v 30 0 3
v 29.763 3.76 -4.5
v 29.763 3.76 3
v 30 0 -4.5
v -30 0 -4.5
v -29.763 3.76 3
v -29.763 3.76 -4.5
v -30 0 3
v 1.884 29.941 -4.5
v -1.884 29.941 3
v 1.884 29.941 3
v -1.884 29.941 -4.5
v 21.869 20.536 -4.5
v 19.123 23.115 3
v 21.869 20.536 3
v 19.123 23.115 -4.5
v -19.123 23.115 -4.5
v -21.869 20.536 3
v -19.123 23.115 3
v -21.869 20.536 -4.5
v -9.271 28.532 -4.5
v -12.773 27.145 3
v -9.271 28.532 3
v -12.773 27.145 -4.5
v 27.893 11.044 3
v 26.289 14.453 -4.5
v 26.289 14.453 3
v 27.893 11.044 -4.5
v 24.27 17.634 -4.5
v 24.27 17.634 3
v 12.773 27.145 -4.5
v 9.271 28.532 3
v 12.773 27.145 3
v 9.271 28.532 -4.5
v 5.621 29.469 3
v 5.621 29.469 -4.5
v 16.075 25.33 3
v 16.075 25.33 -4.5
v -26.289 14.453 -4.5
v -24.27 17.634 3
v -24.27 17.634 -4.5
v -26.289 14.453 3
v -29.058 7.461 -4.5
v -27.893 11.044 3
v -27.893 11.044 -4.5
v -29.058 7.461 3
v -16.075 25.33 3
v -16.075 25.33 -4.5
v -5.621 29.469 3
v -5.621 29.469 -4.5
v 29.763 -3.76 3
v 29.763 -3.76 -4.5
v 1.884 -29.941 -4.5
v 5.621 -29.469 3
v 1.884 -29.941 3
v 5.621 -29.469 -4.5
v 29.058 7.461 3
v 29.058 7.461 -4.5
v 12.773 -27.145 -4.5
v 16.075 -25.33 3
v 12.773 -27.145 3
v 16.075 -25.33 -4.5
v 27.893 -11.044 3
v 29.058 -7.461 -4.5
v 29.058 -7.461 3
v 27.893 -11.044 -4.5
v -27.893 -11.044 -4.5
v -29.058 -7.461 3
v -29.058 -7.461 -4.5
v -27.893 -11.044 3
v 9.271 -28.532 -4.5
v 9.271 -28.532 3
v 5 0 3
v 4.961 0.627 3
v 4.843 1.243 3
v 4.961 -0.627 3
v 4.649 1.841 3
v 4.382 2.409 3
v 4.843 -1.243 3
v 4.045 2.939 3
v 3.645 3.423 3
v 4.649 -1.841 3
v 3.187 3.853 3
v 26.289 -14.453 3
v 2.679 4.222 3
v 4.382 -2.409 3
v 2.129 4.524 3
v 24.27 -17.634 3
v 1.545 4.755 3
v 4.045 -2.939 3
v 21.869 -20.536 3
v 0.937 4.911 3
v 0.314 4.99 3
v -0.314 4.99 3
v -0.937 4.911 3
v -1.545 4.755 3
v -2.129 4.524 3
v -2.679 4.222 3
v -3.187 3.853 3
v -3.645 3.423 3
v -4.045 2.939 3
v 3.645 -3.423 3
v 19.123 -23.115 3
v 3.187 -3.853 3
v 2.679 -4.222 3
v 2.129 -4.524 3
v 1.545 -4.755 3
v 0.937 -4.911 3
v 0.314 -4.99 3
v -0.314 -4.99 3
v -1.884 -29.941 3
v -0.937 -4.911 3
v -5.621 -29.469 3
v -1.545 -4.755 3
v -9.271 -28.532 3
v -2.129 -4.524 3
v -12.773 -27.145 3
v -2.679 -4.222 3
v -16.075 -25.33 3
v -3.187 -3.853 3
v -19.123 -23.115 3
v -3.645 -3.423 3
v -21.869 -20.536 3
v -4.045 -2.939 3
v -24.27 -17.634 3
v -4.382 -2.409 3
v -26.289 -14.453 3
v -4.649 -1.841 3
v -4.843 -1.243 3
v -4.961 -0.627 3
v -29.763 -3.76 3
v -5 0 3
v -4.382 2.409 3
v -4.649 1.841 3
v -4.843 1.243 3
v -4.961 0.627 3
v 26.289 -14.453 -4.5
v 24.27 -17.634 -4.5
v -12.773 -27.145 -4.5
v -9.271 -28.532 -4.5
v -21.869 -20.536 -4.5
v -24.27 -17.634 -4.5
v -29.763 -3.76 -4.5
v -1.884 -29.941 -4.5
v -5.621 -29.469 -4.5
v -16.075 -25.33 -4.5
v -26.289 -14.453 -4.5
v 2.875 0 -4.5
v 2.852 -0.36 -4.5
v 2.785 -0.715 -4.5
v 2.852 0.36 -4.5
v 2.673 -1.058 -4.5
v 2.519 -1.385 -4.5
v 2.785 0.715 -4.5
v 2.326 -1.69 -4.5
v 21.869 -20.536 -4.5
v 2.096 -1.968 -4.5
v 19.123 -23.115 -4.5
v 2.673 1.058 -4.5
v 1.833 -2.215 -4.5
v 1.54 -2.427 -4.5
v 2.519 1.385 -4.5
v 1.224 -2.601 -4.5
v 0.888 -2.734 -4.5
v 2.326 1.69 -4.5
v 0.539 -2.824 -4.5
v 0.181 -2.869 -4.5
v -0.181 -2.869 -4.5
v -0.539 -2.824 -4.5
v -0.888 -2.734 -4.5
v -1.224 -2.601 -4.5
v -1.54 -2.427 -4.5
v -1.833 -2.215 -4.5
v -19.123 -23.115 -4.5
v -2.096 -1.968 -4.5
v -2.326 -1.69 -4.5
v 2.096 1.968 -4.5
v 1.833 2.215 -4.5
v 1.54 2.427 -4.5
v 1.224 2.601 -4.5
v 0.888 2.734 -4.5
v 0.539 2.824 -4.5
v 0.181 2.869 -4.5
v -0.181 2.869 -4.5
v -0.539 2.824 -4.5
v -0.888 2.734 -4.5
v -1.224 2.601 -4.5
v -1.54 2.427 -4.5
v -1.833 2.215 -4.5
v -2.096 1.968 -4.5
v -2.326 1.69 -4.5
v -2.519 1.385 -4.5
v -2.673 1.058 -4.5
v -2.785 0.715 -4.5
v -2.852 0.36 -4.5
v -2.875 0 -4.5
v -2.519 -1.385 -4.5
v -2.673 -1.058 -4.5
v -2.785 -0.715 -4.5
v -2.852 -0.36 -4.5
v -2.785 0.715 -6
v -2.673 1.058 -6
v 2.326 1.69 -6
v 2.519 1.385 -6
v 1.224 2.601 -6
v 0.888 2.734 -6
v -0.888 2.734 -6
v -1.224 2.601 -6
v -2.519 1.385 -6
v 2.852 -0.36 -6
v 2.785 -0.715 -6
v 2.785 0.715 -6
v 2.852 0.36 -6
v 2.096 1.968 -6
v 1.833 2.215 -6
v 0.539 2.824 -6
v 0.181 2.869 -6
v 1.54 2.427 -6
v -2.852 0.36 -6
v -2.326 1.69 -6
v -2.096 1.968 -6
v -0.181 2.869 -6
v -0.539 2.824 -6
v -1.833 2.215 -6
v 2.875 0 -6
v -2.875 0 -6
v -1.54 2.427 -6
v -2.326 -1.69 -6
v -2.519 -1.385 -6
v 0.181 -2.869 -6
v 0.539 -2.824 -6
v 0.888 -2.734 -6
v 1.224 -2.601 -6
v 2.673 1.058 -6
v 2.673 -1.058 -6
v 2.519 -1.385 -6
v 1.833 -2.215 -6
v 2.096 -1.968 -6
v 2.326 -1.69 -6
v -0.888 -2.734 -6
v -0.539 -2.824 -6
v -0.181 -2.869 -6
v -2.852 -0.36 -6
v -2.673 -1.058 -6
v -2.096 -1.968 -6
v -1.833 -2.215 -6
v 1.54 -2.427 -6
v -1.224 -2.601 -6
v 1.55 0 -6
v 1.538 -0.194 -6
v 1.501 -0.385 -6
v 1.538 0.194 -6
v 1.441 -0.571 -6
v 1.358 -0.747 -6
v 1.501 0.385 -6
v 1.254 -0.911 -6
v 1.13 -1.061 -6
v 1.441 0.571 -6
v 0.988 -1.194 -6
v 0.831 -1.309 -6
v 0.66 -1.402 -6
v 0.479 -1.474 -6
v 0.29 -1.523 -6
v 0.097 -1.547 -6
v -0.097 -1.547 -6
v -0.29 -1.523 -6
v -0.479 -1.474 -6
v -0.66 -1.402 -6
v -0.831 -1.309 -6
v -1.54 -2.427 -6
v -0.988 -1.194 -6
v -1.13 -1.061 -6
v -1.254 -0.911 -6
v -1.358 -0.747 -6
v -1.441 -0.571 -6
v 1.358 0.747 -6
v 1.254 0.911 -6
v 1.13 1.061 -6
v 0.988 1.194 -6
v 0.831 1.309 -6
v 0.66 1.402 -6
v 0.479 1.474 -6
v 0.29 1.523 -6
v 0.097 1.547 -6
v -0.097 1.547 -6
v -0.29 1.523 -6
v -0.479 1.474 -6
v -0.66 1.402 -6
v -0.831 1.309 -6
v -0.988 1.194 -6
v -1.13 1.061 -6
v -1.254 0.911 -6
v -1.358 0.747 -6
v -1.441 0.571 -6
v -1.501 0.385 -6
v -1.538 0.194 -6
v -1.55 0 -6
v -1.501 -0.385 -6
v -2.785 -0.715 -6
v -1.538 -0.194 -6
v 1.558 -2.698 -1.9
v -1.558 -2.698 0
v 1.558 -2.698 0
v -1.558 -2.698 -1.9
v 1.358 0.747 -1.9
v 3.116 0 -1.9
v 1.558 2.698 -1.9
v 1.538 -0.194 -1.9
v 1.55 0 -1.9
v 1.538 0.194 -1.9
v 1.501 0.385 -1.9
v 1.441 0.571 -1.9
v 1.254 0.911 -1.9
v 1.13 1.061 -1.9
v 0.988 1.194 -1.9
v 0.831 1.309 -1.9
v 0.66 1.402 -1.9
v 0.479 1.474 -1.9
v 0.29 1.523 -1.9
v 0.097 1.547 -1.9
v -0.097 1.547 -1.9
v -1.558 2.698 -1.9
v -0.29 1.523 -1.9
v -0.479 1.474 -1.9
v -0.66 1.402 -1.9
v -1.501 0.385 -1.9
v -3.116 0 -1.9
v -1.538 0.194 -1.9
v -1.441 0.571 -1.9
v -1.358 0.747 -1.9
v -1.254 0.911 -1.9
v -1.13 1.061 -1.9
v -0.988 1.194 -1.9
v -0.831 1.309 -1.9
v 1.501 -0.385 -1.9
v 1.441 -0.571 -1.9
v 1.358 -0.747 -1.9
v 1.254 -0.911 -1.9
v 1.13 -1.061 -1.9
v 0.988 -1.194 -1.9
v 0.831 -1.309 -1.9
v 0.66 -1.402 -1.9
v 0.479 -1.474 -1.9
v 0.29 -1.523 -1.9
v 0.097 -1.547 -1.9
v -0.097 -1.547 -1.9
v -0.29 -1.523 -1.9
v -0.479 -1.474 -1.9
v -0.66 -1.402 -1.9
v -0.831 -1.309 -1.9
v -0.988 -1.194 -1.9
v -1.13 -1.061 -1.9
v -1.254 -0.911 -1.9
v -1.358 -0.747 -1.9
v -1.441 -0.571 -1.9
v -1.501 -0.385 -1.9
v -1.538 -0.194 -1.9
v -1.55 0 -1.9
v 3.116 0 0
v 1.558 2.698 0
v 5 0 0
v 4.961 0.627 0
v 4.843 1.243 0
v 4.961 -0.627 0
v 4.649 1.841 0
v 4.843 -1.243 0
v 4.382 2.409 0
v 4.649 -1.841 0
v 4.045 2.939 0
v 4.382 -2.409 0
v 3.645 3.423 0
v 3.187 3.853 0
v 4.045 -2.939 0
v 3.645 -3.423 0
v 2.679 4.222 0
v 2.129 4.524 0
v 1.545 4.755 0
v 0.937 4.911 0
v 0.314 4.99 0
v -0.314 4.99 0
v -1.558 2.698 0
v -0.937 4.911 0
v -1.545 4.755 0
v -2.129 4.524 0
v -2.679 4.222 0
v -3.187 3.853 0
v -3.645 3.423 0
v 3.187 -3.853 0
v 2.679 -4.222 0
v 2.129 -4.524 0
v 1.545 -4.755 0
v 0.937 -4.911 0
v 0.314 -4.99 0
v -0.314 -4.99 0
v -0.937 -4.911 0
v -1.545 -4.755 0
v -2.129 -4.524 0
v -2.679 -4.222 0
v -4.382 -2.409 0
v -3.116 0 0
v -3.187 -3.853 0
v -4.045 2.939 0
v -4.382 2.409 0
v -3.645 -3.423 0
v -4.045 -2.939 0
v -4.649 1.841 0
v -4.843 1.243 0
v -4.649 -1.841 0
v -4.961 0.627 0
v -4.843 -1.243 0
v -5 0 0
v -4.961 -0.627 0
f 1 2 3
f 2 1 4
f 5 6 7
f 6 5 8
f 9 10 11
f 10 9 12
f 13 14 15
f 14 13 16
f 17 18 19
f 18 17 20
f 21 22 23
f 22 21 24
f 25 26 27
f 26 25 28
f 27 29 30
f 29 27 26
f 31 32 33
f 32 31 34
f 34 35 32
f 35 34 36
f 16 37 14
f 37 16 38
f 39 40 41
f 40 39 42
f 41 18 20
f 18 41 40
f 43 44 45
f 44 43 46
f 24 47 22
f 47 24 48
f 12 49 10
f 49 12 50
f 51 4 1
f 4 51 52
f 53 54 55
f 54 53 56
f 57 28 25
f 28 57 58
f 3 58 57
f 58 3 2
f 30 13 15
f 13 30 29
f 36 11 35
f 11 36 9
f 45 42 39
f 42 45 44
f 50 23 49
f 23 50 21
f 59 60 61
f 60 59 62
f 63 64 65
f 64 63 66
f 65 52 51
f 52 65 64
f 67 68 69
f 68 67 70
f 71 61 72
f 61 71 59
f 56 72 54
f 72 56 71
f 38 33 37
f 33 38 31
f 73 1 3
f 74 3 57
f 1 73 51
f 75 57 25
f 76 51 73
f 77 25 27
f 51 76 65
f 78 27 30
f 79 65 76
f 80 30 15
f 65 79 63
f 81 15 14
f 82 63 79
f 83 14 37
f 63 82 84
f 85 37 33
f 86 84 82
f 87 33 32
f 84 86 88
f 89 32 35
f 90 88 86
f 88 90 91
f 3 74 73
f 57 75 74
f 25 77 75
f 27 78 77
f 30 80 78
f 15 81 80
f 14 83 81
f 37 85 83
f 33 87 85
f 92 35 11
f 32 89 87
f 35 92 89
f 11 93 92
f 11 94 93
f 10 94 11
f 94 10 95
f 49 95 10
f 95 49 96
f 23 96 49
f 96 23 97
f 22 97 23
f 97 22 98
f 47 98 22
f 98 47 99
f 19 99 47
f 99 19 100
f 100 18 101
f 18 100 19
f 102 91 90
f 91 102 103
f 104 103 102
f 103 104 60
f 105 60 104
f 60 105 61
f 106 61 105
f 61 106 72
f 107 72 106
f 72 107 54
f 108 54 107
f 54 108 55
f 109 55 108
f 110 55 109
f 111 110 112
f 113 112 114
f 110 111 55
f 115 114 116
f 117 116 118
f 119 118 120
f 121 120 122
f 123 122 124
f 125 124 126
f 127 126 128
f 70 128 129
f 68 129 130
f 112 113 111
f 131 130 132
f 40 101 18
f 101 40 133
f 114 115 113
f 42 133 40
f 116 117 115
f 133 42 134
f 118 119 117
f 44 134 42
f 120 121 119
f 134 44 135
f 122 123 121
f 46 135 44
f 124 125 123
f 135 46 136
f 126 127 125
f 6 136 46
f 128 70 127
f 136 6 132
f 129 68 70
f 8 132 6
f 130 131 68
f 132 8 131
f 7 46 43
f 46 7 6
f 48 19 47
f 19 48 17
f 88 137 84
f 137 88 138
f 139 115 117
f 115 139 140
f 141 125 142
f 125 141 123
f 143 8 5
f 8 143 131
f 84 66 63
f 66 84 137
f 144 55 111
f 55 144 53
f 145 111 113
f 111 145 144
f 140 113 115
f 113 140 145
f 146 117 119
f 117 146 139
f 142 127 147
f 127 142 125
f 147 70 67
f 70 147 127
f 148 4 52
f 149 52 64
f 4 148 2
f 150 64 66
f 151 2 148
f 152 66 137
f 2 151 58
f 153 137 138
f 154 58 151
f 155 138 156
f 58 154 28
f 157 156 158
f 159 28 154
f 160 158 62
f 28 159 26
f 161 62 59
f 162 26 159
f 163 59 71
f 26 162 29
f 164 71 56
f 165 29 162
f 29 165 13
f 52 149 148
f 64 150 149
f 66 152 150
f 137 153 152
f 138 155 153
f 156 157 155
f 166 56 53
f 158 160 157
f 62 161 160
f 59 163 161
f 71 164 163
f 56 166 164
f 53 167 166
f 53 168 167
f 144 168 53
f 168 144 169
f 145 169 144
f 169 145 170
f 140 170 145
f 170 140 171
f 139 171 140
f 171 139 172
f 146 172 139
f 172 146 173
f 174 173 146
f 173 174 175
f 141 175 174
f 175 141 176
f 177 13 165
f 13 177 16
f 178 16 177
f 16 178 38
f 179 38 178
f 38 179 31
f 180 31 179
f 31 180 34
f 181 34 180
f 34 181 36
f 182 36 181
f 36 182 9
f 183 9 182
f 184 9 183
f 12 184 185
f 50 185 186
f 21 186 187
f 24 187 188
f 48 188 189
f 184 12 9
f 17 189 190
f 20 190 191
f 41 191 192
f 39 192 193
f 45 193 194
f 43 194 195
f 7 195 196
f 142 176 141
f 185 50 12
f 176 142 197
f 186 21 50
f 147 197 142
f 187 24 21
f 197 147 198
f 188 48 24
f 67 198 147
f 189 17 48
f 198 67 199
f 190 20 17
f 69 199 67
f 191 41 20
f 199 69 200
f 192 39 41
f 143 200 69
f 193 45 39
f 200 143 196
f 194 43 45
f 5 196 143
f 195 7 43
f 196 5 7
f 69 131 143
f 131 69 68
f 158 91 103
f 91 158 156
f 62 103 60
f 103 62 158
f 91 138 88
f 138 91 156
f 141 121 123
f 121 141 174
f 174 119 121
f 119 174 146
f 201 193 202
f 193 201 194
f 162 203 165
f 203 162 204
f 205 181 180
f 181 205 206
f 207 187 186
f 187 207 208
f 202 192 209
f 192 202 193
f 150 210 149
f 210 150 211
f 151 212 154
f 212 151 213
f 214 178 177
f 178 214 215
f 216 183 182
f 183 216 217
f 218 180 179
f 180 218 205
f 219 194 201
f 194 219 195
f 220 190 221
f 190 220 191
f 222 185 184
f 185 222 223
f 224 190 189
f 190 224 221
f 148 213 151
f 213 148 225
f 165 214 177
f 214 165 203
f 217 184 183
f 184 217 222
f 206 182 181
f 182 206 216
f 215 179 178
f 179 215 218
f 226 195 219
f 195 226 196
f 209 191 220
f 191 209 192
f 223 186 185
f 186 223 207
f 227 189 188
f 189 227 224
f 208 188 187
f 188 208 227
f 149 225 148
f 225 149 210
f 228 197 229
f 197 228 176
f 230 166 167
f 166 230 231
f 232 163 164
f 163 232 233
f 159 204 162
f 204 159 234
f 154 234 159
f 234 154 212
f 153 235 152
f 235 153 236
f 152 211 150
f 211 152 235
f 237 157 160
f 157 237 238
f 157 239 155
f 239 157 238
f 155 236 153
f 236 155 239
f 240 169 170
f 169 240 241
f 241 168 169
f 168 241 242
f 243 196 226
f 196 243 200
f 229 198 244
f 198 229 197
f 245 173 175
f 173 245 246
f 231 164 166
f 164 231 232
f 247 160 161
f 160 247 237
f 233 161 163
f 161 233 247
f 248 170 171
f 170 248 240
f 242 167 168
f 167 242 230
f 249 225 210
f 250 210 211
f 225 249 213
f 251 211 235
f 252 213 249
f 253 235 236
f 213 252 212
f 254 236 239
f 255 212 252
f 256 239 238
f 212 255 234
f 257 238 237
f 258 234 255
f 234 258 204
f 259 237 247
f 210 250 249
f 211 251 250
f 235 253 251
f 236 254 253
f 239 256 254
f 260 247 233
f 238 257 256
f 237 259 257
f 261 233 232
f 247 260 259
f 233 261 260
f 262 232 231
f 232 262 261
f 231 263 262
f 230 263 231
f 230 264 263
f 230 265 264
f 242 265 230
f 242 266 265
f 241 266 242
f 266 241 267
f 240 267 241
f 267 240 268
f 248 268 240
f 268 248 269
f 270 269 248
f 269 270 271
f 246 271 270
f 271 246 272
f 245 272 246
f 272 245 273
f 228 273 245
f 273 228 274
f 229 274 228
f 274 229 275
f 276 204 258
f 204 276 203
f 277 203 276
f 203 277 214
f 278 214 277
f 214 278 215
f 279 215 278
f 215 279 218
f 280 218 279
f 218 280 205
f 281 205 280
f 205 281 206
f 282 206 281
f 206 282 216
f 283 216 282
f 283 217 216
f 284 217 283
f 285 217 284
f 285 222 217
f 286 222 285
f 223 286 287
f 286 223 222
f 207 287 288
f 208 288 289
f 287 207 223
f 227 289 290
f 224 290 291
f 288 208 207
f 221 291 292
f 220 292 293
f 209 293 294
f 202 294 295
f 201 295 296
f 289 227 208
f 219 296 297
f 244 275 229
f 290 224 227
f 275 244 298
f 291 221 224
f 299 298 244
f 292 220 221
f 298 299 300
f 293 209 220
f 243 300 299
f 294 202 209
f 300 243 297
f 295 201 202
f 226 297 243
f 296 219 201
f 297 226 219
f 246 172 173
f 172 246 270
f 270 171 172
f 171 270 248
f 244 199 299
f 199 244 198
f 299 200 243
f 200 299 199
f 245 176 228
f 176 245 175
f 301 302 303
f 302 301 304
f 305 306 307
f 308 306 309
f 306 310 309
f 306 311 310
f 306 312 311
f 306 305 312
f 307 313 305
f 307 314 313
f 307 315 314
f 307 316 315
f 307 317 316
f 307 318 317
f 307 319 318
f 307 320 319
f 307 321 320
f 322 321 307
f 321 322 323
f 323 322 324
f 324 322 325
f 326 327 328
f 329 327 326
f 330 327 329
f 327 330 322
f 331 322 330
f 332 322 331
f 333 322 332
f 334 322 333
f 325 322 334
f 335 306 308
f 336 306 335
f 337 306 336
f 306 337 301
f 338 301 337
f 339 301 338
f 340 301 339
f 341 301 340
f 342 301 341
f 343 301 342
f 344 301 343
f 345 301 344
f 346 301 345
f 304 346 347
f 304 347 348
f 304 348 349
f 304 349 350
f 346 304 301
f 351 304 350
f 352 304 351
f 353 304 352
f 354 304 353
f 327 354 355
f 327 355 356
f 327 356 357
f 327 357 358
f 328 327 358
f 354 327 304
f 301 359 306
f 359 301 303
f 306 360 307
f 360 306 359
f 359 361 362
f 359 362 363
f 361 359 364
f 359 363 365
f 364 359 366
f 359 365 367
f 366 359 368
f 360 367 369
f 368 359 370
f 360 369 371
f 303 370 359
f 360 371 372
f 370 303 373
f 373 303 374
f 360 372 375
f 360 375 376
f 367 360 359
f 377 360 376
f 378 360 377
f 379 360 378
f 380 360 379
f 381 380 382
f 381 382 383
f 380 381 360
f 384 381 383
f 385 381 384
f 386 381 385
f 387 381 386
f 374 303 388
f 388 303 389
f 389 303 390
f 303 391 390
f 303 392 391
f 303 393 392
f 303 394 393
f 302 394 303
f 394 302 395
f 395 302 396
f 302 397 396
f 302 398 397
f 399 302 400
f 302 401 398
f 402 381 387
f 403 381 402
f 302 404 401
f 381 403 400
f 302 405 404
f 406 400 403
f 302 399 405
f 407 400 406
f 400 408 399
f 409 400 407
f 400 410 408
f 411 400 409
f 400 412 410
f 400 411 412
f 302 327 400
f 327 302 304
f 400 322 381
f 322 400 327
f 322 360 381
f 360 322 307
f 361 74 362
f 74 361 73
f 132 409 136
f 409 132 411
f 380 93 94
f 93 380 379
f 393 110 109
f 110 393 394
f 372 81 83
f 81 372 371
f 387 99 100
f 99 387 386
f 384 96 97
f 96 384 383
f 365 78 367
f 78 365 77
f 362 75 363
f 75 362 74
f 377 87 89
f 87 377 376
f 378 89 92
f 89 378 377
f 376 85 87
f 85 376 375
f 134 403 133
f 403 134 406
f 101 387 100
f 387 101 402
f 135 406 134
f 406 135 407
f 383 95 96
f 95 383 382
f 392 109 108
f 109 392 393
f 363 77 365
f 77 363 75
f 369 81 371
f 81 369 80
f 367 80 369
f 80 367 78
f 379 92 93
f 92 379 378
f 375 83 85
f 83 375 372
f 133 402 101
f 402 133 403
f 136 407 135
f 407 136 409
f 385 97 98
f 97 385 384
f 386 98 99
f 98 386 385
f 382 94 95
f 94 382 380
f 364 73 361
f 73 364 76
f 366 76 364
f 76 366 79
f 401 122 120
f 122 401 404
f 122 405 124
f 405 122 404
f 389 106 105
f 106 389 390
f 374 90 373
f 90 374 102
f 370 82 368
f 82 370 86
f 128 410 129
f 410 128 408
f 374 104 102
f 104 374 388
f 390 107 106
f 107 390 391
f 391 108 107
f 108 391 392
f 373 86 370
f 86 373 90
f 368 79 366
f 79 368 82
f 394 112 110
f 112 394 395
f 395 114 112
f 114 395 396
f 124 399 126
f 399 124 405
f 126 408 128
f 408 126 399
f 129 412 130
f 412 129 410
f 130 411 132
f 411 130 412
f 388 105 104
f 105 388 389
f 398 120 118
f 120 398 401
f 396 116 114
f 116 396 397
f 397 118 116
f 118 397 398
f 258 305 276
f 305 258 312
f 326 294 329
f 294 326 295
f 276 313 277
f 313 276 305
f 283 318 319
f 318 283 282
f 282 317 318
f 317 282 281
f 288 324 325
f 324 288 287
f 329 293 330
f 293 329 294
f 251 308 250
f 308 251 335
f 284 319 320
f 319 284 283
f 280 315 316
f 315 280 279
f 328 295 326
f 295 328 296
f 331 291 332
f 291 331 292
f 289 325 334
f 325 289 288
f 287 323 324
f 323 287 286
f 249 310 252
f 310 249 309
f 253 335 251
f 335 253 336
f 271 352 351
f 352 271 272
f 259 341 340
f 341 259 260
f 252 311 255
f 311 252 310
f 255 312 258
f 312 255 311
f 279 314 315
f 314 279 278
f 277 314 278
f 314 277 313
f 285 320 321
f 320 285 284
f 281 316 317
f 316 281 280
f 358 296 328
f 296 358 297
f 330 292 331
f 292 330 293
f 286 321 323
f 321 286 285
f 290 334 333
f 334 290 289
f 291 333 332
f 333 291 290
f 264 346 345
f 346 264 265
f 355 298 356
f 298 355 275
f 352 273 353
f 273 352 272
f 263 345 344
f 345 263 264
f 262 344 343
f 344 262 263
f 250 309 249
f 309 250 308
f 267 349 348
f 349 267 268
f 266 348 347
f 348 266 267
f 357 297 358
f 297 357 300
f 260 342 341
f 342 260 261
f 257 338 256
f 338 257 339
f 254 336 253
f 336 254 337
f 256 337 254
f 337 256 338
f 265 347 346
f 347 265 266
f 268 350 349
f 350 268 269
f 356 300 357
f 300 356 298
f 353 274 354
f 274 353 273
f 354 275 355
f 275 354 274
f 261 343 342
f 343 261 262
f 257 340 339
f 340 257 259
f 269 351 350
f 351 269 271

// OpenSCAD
$fn = 50;


difference() {
	union() {
		translate(v = [0, 0, -4.5000000000]) {
			cylinder(h = 7.5000000000, r = 30.0000000000);
		}
		#translate(v = [0, 0, -6.0000000000]) {
			cylinder(h = 6, r = 2.8750000000);
		}
	}
	union() {
		translate(v = [0, 0, 0]) {
			rotate(a = [0, 0, 0]) {
				difference() {
					union() {
						translate(v = [0, 0, -1.9000000000]) {
							linear_extrude(height = 1.9000000000) {
								polygon(points = [[3.1158000000, 0.0000000000], [1.5579000000, 2.6983619531], [-1.5579000000, 2.6983619531], [-3.1158000000, 0.0000000000], [-1.5579000000, -2.6983619531], [1.5579000000, -2.6983619531]]);
							}
						}
					}
					union();
				}
			}
		}
		#cylinder(h = 3, r = 5.0000000000);
		#translate(v = [0, 0, -100.0000000000]) {
			cylinder(h = 200, r = 1.5500000000);
		}
	}
}
